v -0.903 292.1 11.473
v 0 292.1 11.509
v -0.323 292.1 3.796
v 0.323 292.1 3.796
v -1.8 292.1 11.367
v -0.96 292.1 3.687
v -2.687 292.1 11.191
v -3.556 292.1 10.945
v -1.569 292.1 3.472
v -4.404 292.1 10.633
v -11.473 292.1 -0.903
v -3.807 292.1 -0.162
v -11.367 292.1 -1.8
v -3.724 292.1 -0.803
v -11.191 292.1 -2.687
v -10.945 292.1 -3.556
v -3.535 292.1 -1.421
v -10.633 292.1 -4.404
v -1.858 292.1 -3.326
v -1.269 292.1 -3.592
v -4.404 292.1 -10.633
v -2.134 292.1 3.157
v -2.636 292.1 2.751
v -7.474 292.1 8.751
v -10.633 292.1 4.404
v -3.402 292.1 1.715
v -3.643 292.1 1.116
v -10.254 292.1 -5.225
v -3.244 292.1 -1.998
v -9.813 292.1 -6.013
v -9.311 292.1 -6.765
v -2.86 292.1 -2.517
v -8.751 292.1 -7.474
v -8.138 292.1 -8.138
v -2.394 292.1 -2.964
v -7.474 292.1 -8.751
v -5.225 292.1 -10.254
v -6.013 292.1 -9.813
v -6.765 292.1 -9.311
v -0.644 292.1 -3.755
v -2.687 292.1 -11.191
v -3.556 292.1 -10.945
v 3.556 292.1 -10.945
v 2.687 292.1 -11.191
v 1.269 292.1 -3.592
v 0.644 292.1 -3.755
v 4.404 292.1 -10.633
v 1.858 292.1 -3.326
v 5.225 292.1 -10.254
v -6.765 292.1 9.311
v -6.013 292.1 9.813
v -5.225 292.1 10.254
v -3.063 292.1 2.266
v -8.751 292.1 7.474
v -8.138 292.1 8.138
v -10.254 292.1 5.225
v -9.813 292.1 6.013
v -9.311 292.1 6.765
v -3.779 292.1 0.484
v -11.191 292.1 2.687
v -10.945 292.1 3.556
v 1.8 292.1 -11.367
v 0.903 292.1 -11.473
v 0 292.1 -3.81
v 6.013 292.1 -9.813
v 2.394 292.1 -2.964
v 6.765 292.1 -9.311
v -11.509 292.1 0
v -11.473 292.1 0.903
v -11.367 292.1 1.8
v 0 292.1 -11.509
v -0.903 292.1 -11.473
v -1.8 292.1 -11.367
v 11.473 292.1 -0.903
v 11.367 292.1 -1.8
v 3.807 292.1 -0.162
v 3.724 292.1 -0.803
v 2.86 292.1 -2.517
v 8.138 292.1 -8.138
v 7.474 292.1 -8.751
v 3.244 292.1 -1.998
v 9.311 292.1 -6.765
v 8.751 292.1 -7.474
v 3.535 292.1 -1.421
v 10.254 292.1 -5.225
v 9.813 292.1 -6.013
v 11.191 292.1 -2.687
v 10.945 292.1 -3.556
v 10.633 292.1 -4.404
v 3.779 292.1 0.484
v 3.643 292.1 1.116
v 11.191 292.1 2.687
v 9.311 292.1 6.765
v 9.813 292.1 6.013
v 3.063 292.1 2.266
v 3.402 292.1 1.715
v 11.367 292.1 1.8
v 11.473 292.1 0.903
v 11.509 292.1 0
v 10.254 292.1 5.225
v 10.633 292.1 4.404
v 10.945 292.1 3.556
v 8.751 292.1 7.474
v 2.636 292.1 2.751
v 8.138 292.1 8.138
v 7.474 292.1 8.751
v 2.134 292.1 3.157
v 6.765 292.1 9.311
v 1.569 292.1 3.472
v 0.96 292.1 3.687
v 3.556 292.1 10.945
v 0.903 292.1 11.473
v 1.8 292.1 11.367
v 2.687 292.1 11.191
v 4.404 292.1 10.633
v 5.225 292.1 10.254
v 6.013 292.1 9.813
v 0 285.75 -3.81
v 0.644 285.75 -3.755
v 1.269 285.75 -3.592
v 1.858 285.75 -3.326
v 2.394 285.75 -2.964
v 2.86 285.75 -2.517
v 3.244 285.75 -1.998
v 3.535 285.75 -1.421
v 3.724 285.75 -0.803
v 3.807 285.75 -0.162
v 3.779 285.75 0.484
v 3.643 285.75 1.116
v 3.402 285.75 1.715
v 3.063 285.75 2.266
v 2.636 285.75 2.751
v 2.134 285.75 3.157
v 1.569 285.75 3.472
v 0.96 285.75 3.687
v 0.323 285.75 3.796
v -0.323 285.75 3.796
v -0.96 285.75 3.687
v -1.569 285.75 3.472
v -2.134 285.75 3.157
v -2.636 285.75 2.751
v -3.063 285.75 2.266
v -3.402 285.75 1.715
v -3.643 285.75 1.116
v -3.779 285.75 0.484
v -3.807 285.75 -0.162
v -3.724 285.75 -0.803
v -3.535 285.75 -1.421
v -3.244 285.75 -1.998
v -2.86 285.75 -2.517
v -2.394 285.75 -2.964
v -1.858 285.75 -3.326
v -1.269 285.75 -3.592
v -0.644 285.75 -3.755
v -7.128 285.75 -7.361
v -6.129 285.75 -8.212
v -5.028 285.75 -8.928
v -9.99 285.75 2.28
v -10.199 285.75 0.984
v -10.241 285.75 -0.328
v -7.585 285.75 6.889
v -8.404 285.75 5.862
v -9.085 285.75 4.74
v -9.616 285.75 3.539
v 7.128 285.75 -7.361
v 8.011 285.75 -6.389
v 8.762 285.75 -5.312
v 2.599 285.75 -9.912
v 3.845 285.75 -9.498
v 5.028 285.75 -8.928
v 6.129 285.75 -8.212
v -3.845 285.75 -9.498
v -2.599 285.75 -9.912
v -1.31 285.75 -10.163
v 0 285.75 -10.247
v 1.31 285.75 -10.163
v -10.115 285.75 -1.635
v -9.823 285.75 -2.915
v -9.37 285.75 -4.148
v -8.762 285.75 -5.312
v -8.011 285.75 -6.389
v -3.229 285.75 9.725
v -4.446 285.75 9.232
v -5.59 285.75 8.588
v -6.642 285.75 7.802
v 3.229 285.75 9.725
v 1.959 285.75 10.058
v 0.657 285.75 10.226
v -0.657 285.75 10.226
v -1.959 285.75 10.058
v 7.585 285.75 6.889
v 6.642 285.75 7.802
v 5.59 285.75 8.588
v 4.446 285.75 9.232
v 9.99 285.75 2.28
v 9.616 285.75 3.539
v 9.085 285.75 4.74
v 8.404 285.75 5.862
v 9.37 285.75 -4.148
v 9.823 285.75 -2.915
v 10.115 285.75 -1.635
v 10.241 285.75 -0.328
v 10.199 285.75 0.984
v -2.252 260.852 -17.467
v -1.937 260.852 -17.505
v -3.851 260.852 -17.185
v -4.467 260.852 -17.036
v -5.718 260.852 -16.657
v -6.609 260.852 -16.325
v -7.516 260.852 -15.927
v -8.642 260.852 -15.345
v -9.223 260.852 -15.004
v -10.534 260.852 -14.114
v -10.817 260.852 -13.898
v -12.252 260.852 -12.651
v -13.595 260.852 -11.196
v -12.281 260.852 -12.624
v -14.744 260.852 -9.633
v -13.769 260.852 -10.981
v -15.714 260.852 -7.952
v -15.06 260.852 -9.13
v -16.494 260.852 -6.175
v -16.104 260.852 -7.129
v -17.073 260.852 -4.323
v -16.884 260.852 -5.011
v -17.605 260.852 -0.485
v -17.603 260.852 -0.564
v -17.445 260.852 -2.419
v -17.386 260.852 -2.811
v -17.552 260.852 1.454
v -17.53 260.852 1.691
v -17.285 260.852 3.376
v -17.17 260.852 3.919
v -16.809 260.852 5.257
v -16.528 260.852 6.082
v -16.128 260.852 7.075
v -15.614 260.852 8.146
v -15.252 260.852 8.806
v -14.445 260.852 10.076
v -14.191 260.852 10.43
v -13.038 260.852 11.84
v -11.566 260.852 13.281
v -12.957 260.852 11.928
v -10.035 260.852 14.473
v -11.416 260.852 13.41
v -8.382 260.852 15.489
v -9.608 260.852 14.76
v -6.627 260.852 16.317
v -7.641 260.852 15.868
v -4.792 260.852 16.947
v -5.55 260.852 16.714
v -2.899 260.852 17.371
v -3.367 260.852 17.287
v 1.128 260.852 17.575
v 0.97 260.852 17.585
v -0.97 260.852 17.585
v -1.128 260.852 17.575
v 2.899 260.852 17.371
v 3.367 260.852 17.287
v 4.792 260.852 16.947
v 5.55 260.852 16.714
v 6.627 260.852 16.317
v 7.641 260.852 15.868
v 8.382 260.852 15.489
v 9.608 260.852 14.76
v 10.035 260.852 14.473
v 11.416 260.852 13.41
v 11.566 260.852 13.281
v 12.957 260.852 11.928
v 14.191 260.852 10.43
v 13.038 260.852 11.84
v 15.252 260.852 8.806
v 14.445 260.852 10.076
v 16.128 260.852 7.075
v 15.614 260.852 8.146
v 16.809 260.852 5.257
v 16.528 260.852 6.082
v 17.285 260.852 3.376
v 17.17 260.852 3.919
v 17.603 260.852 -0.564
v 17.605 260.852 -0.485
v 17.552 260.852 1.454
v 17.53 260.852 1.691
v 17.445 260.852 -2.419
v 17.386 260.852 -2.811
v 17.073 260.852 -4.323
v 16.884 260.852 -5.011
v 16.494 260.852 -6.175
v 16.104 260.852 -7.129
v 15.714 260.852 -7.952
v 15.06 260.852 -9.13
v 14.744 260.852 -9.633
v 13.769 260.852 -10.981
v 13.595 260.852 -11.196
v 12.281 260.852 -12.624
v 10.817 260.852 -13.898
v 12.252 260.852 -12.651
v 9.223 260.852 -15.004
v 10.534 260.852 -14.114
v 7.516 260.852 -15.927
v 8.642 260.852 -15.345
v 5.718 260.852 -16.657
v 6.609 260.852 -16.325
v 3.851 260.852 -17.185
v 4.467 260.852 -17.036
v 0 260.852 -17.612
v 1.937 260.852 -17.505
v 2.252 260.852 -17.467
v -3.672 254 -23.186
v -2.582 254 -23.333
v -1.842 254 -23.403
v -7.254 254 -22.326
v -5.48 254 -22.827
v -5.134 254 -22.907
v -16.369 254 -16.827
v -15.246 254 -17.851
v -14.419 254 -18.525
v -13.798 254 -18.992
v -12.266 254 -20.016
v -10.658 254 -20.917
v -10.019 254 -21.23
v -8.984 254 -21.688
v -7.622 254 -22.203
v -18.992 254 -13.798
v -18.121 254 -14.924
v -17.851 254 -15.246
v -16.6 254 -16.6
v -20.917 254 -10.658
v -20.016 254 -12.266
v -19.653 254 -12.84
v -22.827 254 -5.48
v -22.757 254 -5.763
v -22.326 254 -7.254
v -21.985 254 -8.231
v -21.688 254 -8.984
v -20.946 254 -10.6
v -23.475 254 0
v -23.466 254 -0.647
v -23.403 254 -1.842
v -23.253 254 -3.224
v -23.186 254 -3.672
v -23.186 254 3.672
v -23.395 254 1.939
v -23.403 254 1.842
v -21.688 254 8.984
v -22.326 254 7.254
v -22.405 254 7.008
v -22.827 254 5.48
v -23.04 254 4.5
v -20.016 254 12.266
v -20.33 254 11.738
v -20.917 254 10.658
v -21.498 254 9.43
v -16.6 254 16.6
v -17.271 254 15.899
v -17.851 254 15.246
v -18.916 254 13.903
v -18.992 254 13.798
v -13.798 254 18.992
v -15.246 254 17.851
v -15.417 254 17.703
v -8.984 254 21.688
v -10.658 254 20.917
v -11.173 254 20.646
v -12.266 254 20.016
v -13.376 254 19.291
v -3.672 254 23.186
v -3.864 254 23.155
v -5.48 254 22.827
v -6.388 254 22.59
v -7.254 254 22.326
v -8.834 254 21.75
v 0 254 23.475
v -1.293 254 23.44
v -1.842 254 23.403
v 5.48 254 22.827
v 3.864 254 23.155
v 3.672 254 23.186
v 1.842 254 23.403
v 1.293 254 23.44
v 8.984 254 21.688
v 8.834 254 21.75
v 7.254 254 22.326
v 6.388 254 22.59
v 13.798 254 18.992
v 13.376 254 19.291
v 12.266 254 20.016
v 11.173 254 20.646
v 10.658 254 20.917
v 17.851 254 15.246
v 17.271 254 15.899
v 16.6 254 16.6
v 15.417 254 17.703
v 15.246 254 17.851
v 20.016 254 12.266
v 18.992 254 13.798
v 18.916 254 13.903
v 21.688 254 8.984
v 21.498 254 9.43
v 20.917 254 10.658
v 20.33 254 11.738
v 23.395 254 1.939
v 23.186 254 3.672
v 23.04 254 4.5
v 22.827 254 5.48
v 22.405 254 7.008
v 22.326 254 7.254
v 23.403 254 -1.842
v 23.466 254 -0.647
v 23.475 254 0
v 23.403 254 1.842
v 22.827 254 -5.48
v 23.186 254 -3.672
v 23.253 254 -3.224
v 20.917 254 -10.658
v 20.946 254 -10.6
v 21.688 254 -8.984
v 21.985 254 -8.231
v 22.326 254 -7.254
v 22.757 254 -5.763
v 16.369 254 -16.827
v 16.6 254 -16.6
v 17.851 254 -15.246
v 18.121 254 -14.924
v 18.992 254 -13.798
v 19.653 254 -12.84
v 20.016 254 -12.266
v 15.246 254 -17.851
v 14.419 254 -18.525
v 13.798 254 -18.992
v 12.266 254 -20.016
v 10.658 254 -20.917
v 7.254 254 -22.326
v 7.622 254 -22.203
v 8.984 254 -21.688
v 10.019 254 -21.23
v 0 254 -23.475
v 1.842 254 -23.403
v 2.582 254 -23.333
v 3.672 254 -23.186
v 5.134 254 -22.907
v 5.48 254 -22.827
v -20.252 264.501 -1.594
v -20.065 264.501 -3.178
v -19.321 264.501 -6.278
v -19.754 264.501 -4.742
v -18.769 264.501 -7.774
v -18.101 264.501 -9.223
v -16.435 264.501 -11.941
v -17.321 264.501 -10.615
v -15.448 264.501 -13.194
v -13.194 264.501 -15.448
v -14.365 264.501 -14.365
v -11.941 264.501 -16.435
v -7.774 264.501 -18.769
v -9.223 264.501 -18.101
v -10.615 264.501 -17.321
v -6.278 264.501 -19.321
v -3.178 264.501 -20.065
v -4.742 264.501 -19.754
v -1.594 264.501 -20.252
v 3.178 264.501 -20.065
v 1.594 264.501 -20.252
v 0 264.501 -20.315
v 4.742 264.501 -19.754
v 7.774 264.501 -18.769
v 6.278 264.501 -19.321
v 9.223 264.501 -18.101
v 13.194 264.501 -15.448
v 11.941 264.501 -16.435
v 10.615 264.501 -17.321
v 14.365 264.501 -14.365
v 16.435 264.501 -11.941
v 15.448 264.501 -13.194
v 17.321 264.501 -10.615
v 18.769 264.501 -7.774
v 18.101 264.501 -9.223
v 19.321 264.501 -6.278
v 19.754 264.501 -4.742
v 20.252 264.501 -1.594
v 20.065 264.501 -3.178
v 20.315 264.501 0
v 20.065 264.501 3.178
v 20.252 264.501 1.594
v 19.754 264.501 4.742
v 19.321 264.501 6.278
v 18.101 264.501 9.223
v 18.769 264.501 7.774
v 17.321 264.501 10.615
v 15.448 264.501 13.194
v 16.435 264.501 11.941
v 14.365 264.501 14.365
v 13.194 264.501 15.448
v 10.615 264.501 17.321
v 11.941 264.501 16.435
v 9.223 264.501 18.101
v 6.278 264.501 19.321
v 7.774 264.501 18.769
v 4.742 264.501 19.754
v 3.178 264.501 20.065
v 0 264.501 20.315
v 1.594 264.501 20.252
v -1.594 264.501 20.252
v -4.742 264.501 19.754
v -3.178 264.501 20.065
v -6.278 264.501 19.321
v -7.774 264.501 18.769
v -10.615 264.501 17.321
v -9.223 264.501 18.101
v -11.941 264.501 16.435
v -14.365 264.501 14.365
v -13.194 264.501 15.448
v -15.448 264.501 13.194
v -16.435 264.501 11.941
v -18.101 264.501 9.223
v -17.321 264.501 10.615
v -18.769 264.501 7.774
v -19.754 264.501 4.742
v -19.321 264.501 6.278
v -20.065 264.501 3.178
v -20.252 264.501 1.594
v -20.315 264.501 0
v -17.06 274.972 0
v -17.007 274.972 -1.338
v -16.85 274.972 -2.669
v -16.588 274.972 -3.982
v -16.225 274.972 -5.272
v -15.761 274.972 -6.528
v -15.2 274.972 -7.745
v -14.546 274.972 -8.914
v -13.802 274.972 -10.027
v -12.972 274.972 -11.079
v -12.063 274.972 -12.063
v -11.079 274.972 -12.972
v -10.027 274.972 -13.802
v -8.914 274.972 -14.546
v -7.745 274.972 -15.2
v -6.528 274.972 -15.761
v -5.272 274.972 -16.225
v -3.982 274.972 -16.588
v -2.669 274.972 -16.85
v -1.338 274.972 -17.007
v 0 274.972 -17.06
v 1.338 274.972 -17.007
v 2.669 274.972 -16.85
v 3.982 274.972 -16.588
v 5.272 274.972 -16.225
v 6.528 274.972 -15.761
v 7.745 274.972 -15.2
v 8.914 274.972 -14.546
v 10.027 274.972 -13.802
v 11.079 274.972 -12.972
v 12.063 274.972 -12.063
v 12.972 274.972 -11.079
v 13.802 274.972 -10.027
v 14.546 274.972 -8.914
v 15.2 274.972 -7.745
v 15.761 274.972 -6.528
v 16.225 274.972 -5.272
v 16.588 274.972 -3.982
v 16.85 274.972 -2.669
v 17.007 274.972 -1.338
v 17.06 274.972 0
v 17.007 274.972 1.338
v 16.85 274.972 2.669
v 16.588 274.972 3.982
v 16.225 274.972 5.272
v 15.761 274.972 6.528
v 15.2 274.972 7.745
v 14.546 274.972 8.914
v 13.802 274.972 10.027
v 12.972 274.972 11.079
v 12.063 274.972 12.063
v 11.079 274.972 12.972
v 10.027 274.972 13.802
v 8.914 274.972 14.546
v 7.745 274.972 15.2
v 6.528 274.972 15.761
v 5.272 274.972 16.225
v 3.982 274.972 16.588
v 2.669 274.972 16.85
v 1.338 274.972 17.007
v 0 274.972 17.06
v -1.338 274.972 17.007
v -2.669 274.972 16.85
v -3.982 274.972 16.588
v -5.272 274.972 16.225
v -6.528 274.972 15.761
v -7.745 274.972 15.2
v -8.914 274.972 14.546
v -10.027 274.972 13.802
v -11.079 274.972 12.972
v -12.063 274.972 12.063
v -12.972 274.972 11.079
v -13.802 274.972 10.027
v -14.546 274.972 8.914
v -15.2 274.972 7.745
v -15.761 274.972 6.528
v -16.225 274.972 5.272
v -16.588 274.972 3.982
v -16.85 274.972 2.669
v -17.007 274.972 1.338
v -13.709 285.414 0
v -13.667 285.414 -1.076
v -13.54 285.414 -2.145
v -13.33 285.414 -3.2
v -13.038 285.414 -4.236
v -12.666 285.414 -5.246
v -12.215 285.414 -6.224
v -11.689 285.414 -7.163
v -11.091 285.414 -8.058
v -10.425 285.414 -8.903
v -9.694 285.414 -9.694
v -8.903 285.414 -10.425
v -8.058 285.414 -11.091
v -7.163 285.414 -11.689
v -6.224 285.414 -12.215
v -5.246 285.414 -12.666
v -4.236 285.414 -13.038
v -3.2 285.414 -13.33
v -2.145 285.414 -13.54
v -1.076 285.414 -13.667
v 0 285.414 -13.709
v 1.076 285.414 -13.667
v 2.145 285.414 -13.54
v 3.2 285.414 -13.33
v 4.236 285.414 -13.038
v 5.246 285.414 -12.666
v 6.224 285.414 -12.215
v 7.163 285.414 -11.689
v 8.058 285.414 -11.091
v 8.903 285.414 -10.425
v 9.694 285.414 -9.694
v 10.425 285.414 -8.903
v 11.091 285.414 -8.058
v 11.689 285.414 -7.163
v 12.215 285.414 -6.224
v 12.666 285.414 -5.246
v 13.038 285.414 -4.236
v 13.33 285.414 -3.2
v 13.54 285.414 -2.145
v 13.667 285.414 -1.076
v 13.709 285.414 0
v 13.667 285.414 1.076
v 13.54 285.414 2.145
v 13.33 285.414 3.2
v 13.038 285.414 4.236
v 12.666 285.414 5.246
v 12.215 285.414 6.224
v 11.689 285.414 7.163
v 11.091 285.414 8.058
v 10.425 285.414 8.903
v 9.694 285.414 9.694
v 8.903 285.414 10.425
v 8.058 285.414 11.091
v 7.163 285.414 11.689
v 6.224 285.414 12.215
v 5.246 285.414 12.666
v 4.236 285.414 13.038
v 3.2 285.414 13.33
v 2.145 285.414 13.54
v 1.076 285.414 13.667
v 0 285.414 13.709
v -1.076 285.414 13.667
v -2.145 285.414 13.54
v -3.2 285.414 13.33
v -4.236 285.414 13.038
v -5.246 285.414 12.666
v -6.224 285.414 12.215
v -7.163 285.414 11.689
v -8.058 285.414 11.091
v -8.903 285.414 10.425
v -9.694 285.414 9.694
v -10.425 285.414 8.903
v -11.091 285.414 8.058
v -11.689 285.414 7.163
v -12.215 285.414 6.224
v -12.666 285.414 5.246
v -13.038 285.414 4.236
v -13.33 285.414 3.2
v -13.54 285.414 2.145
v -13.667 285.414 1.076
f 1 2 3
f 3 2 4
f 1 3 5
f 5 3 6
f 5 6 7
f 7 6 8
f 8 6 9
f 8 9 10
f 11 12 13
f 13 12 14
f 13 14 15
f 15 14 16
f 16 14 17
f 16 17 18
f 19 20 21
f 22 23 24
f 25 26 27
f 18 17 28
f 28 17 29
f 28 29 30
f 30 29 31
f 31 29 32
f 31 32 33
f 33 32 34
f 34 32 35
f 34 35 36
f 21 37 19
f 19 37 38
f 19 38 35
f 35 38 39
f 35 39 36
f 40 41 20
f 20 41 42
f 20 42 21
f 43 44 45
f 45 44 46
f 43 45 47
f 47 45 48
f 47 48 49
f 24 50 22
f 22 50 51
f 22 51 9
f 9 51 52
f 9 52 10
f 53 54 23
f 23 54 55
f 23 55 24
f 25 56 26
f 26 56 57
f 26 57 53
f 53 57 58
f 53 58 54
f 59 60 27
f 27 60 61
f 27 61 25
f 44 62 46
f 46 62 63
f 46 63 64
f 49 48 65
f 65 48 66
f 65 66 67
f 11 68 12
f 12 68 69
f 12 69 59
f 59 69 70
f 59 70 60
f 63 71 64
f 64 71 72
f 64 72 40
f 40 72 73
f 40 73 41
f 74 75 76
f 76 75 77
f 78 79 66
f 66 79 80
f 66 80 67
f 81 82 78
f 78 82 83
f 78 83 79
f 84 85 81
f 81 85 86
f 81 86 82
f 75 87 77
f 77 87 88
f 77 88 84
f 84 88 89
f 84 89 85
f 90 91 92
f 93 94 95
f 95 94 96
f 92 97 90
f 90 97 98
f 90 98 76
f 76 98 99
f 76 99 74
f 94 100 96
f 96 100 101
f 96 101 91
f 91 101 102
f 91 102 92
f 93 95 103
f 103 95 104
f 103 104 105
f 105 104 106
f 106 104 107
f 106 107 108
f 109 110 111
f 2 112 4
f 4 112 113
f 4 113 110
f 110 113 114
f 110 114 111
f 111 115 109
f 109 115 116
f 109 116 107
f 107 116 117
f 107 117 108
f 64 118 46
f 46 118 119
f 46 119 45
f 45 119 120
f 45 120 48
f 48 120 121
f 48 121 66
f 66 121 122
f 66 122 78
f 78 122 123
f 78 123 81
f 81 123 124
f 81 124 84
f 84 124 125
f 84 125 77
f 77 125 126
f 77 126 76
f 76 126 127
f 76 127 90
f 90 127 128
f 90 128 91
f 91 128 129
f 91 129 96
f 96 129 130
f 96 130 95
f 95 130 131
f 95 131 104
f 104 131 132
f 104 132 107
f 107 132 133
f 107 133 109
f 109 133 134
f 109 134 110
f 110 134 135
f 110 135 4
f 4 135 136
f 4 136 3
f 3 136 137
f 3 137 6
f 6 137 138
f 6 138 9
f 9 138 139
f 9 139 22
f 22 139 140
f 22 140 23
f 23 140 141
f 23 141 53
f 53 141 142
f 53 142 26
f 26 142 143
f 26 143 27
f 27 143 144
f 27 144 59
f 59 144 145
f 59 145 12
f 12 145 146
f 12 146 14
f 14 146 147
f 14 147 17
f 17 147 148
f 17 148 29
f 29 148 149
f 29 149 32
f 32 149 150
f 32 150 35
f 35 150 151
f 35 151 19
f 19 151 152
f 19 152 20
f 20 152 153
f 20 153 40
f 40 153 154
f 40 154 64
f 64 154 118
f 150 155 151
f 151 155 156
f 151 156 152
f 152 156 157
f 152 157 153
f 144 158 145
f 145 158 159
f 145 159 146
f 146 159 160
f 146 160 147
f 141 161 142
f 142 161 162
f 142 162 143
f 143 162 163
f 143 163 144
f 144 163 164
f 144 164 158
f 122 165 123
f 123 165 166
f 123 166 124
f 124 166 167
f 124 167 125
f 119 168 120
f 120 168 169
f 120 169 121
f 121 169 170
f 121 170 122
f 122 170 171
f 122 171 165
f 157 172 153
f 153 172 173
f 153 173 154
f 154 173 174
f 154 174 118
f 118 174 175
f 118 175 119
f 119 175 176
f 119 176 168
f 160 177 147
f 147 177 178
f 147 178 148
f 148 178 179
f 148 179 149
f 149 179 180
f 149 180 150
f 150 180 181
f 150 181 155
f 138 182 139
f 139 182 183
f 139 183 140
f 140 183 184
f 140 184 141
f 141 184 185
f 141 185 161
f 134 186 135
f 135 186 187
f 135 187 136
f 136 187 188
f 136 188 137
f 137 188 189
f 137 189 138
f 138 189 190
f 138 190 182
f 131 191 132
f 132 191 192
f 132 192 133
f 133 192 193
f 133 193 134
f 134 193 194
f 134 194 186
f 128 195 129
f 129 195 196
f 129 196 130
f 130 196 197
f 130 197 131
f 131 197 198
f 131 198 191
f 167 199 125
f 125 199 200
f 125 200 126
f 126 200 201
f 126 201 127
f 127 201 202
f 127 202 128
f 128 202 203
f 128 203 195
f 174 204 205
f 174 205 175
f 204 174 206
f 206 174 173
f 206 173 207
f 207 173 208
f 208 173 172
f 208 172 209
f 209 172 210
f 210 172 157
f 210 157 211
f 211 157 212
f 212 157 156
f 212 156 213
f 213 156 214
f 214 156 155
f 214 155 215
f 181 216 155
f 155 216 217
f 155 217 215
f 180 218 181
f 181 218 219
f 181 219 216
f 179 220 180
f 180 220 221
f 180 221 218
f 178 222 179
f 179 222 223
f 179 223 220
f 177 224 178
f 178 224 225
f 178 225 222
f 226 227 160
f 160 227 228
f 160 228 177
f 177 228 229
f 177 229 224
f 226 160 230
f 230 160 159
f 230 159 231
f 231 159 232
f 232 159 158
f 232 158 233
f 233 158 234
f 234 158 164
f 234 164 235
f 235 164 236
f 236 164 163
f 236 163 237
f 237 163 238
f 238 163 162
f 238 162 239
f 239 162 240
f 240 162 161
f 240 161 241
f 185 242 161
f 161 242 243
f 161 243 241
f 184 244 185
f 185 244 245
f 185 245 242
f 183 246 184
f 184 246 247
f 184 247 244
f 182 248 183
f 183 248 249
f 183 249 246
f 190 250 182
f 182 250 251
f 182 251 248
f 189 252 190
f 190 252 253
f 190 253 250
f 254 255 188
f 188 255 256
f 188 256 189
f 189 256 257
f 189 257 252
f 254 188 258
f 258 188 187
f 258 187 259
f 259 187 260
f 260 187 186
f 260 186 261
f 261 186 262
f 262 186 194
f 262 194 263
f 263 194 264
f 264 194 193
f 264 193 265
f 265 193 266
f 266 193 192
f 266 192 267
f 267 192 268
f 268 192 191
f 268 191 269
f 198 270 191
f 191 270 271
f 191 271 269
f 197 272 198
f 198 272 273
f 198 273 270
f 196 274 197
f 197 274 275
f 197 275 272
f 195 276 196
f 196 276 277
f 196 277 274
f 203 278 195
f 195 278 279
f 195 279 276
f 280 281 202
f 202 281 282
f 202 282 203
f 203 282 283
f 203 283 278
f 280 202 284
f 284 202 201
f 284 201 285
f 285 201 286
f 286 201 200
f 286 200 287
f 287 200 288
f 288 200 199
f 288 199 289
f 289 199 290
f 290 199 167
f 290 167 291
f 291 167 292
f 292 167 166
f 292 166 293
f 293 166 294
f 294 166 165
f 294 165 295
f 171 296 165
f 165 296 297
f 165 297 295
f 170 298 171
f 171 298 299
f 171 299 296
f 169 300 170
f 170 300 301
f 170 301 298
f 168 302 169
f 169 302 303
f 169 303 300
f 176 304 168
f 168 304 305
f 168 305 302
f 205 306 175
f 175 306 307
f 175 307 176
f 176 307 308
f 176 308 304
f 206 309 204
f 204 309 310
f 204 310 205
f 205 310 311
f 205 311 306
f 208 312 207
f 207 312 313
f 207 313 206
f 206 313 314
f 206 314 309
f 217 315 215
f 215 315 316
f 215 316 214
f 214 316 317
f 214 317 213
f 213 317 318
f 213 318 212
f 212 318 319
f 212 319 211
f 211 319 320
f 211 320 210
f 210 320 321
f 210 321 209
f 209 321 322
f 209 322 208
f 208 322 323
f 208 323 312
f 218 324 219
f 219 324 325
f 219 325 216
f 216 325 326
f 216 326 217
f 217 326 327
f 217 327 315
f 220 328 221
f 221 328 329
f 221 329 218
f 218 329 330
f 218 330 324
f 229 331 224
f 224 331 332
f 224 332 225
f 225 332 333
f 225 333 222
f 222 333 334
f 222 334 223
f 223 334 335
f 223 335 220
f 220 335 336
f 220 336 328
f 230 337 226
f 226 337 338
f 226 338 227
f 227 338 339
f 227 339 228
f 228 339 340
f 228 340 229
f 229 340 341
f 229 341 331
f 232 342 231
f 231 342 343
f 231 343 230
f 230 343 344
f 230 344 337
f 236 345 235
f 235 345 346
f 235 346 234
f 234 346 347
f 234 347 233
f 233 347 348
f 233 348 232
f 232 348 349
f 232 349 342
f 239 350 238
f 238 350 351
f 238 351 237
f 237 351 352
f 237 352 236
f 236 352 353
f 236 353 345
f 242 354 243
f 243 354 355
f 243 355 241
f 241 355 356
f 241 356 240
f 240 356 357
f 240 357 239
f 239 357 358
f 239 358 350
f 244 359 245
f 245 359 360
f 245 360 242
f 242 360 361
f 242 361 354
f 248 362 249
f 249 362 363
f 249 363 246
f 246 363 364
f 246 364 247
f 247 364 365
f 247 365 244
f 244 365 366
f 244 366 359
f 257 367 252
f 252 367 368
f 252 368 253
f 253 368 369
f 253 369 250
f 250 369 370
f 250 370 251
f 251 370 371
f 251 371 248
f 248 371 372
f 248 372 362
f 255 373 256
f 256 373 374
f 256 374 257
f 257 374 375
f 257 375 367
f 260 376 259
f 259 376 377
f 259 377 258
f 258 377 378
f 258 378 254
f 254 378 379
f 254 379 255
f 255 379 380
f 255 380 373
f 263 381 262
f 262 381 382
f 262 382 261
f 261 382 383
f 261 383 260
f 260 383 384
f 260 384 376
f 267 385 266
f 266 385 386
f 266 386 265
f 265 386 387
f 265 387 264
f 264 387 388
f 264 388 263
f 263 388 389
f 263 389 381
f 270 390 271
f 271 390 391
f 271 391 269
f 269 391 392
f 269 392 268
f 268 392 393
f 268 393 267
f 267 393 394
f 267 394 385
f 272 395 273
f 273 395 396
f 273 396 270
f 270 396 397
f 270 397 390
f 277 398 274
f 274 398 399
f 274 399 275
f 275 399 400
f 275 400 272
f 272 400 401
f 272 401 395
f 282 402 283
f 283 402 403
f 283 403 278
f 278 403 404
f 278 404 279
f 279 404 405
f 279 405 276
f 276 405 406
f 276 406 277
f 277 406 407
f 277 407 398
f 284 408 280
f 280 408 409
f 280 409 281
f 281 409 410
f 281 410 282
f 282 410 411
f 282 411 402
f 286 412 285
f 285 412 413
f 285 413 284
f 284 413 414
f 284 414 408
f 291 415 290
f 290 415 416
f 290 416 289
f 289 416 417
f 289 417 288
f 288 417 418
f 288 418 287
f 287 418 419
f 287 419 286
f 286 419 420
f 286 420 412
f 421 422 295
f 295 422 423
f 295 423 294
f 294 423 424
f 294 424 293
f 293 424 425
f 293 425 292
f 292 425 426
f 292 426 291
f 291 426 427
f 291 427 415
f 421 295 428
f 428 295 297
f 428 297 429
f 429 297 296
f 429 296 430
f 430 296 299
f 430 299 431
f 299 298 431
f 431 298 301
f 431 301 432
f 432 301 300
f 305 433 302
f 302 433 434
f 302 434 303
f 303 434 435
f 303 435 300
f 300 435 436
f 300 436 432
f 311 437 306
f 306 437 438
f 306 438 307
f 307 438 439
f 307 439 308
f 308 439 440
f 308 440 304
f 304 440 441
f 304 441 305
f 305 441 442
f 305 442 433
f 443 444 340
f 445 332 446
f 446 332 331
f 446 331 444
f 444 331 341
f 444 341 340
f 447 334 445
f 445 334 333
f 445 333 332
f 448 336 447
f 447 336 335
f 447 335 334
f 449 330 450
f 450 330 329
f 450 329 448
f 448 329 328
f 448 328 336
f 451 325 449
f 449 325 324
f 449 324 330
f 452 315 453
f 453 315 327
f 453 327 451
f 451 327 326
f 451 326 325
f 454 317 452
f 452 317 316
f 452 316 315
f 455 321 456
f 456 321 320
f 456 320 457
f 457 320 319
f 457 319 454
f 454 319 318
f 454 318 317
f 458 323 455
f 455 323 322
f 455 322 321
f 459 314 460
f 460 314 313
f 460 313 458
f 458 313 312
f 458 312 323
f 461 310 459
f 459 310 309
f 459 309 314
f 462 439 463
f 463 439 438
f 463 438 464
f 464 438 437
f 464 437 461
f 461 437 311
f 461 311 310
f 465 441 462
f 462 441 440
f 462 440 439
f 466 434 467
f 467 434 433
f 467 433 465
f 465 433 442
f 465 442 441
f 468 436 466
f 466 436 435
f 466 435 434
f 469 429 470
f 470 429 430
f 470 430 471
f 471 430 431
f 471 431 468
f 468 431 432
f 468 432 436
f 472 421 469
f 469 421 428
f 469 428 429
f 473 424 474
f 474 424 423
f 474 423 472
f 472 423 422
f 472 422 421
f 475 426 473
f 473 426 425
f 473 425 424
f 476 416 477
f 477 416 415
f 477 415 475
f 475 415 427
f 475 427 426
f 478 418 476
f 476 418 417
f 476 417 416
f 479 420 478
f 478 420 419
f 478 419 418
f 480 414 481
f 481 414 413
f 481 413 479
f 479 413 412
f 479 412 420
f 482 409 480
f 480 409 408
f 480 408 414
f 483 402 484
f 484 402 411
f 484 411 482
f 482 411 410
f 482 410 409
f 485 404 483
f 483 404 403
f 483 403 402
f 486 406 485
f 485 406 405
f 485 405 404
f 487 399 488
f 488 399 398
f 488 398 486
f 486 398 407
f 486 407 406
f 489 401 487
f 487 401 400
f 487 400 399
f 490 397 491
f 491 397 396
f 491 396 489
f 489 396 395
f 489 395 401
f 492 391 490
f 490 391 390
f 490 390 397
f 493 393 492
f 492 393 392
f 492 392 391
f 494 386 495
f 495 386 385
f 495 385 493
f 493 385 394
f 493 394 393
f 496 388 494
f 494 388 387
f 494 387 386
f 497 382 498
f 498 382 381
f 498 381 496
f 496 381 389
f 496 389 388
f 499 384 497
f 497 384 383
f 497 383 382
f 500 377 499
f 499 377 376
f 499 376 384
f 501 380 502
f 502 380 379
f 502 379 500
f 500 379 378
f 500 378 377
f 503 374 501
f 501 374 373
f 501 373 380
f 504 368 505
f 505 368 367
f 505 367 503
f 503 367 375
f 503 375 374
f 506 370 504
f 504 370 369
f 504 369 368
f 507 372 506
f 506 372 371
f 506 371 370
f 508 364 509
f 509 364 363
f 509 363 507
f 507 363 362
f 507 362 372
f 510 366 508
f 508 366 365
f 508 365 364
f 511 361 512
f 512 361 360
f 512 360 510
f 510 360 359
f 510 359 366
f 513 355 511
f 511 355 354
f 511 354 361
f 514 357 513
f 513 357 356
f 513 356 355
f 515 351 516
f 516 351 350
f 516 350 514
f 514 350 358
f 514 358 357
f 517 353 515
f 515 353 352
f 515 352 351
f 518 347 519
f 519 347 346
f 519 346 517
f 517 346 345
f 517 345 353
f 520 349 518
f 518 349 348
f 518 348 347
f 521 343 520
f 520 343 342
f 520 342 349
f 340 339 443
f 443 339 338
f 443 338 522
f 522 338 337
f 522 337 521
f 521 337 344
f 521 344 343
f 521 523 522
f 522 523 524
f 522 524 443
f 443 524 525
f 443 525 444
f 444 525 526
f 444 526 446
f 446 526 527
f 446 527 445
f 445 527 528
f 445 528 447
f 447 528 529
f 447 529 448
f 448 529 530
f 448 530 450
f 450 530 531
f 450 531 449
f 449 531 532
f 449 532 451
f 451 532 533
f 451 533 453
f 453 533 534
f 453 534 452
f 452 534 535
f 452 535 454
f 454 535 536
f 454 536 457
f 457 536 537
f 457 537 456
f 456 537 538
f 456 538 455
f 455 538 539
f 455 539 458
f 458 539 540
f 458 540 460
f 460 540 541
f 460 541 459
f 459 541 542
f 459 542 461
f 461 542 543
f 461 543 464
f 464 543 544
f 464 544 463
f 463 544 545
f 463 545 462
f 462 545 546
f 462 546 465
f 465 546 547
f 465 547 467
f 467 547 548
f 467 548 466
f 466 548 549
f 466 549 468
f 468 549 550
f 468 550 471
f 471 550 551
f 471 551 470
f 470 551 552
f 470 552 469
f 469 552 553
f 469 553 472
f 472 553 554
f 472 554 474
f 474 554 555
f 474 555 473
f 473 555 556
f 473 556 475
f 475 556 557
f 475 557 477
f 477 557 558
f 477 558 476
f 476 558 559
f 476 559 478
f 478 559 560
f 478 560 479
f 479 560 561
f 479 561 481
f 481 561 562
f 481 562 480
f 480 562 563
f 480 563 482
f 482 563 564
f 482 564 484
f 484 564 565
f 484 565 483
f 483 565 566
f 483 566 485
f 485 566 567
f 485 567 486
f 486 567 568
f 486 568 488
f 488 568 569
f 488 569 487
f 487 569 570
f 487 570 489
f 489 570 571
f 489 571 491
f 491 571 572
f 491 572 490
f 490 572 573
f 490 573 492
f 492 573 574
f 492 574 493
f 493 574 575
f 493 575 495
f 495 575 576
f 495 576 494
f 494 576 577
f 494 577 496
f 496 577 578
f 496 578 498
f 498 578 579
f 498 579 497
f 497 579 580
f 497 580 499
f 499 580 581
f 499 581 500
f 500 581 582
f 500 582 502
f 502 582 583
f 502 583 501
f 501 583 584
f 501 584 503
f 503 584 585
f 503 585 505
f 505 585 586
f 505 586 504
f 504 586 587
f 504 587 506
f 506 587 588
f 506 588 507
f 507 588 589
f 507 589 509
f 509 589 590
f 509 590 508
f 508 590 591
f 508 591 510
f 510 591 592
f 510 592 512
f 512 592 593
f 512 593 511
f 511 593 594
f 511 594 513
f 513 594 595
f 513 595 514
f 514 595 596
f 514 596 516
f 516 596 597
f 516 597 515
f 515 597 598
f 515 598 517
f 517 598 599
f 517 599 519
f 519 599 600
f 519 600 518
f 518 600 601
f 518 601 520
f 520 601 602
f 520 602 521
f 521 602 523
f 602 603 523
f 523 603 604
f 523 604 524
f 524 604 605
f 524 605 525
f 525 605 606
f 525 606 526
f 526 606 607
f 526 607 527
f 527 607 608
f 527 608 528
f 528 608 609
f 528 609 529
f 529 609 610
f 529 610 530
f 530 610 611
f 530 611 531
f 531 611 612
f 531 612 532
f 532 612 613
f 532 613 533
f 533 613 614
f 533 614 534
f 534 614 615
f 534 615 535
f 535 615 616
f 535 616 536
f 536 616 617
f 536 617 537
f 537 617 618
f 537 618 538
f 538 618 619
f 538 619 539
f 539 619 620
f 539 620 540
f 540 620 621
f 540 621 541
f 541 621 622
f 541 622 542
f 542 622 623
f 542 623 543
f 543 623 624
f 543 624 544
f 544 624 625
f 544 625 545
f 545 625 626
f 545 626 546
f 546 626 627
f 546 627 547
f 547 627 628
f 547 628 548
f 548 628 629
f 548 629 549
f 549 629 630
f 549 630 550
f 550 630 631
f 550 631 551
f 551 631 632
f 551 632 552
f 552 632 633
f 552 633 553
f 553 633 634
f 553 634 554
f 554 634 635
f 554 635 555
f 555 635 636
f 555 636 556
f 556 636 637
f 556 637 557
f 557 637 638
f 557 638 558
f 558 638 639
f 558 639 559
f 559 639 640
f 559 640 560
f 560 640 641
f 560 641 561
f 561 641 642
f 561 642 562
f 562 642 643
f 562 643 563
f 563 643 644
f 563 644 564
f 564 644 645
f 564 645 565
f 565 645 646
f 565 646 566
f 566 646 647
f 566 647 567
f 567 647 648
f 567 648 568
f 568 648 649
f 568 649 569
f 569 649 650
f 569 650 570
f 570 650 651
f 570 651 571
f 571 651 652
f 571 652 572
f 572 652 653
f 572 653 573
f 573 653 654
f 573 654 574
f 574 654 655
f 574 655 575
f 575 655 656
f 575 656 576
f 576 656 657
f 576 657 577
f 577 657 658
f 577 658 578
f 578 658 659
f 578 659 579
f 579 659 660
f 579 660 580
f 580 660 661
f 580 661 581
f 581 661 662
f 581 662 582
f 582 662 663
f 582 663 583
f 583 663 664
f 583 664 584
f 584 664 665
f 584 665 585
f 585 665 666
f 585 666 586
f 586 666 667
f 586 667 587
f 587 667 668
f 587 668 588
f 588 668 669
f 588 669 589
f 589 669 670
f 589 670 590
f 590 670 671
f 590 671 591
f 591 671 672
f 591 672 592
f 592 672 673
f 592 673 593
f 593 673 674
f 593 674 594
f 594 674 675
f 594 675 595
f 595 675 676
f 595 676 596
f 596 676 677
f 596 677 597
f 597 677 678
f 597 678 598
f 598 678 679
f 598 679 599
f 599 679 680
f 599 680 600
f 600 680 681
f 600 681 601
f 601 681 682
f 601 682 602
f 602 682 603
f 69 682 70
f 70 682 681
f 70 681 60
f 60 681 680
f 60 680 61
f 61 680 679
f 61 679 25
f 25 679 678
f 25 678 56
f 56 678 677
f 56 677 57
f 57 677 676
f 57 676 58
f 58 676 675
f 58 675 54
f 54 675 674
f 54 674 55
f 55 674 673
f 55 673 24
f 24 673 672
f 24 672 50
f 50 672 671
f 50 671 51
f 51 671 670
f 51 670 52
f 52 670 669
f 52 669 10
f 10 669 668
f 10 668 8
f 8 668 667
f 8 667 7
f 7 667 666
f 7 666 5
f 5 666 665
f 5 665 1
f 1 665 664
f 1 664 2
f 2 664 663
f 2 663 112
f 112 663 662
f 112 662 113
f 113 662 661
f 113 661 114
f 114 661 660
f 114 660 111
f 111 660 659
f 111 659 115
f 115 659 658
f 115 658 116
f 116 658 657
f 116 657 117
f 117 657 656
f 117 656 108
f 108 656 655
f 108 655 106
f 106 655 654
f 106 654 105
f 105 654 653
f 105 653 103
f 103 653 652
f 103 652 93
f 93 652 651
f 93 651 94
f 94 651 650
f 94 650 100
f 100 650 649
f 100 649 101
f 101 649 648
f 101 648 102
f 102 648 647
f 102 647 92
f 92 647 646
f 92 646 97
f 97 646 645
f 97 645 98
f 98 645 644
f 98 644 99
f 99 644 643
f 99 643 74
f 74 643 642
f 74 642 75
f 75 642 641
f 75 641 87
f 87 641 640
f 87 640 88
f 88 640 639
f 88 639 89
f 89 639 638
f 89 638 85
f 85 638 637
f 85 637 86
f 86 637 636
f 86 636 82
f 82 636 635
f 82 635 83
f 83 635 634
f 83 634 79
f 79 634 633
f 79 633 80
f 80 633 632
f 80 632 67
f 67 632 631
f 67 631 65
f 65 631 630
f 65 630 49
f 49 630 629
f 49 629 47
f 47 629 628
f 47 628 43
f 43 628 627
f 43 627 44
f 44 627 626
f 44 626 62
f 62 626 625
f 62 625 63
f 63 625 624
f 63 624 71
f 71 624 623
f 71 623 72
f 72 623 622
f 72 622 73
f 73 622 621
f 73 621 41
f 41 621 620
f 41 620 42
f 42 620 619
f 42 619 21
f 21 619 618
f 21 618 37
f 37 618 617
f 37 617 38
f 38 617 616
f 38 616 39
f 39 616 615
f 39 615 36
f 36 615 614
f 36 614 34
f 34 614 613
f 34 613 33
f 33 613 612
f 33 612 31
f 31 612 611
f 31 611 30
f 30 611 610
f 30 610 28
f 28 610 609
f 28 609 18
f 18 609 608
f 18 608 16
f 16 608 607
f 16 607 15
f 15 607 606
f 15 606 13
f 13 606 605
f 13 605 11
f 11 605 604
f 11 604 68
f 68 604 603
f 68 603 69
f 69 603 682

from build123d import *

# Parameters (mm, degrees)
SKETCH7_R          = 317.5
CUT_EXTRUDE2_DEPTH = 88.9
SKETCH10_R         = 85.772186651
CUT_EXTRUDE3_DEPTH = 254


with BuildPart() as part:
    # Sketch2 → Revolve1 (revolve)
    with BuildSketch(Plane.XY):
        with BuildLine():
            Line((-76.2, 0), (-69.85, 0))
            ThreePointArc((-69.85, 0), (-46.178344337, 164.977710697), (0, 325.12))
            Line((0, 325.12), (0, 330.2))
            ThreePointArc((0, 330.2), (-50.970594074, 168.070137094), (-76.2, 0))
        make_face()
    revolve(axis=Axis((0, 330.2, 0), (0, -1, 0)))

    # Sketch7 → Cut-Extrude2 (cut)
    with BuildSketch(Plane(origin=(0, 381, 0), x_dir=(1, 0, 0), z_dir=(0, 1, 0))):
        Circle(SKETCH7_R)
    extrude(amount=-CUT_EXTRUDE2_DEPTH, mode=Mode.SUBTRACT)


with BuildPart() as revolve2_tool:
    # Sketch9 → Revolve2 (revolve)
    with BuildSketch(Plane.XY):
        with BuildLine():
            Line((-3.81, 292.1), (-11.508581929, 292.1))
            add(Edge.make_bspline(
                [(-11.508581929, 292.1), (-17.806824774, 273.150147369), (-23.475281451, 254)],
                knots=[0, 0, 0, 1, 1, 1], degree=2))
            Line((-23.475281451, 254), (-17.611658866, 260.852181246))
            Line((-17.611658866, 260.852181246), (-10.246748418, 285.75))
            Line((-10.246748418, 285.75), (-3.81, 285.75))
            Line((-3.81, 285.75), (-3.81, 292.1))
        make_face()
    revolve(axis=Axis((0, 0, 0), (0, 1, 0)))


with BuildPart() as part_1:
    add(part.part)


with BuildPart() as part_2:
    # Revolve2: joined with revolve2_tool
    add(part_1.part.fuse(revolve2_tool.part, tol=0.00001))

    # Sketch10 → Cut-Extrude3 (cut)
    with BuildSketch(Plane.XZ):
        Circle(SKETCH10_R)
    extrude(amount=-CUT_EXTRUDE3_DEPTH, mode=Mode.SUBTRACT)

    # Sketch11 → Cut-Revolve1 (revolve, cut)
    with BuildSketch(Plane.XY):
        with BuildLine():
            Line((-11.508581929, 292.1), (-17.218255747, 292.1))
            Line((-17.218255747, 292.1), (-28.877637537, 252.581941016))
            Line((-28.877637537, 252.581941016), (-23.475281451, 254))
            add(Edge.make_bspline(
                [(-23.475281451, 254), (-17.807210235, 273.148920026), (-11.508581929, 292.1)],
                knots=[0, 0, 0, 1, 1, 1], degree=2))
        make_face()
    revolve(axis=Axis((0, 292.1, 0), (0, -1, 0)), mode=Mode.SUBTRACT)


solid = part_2.part
